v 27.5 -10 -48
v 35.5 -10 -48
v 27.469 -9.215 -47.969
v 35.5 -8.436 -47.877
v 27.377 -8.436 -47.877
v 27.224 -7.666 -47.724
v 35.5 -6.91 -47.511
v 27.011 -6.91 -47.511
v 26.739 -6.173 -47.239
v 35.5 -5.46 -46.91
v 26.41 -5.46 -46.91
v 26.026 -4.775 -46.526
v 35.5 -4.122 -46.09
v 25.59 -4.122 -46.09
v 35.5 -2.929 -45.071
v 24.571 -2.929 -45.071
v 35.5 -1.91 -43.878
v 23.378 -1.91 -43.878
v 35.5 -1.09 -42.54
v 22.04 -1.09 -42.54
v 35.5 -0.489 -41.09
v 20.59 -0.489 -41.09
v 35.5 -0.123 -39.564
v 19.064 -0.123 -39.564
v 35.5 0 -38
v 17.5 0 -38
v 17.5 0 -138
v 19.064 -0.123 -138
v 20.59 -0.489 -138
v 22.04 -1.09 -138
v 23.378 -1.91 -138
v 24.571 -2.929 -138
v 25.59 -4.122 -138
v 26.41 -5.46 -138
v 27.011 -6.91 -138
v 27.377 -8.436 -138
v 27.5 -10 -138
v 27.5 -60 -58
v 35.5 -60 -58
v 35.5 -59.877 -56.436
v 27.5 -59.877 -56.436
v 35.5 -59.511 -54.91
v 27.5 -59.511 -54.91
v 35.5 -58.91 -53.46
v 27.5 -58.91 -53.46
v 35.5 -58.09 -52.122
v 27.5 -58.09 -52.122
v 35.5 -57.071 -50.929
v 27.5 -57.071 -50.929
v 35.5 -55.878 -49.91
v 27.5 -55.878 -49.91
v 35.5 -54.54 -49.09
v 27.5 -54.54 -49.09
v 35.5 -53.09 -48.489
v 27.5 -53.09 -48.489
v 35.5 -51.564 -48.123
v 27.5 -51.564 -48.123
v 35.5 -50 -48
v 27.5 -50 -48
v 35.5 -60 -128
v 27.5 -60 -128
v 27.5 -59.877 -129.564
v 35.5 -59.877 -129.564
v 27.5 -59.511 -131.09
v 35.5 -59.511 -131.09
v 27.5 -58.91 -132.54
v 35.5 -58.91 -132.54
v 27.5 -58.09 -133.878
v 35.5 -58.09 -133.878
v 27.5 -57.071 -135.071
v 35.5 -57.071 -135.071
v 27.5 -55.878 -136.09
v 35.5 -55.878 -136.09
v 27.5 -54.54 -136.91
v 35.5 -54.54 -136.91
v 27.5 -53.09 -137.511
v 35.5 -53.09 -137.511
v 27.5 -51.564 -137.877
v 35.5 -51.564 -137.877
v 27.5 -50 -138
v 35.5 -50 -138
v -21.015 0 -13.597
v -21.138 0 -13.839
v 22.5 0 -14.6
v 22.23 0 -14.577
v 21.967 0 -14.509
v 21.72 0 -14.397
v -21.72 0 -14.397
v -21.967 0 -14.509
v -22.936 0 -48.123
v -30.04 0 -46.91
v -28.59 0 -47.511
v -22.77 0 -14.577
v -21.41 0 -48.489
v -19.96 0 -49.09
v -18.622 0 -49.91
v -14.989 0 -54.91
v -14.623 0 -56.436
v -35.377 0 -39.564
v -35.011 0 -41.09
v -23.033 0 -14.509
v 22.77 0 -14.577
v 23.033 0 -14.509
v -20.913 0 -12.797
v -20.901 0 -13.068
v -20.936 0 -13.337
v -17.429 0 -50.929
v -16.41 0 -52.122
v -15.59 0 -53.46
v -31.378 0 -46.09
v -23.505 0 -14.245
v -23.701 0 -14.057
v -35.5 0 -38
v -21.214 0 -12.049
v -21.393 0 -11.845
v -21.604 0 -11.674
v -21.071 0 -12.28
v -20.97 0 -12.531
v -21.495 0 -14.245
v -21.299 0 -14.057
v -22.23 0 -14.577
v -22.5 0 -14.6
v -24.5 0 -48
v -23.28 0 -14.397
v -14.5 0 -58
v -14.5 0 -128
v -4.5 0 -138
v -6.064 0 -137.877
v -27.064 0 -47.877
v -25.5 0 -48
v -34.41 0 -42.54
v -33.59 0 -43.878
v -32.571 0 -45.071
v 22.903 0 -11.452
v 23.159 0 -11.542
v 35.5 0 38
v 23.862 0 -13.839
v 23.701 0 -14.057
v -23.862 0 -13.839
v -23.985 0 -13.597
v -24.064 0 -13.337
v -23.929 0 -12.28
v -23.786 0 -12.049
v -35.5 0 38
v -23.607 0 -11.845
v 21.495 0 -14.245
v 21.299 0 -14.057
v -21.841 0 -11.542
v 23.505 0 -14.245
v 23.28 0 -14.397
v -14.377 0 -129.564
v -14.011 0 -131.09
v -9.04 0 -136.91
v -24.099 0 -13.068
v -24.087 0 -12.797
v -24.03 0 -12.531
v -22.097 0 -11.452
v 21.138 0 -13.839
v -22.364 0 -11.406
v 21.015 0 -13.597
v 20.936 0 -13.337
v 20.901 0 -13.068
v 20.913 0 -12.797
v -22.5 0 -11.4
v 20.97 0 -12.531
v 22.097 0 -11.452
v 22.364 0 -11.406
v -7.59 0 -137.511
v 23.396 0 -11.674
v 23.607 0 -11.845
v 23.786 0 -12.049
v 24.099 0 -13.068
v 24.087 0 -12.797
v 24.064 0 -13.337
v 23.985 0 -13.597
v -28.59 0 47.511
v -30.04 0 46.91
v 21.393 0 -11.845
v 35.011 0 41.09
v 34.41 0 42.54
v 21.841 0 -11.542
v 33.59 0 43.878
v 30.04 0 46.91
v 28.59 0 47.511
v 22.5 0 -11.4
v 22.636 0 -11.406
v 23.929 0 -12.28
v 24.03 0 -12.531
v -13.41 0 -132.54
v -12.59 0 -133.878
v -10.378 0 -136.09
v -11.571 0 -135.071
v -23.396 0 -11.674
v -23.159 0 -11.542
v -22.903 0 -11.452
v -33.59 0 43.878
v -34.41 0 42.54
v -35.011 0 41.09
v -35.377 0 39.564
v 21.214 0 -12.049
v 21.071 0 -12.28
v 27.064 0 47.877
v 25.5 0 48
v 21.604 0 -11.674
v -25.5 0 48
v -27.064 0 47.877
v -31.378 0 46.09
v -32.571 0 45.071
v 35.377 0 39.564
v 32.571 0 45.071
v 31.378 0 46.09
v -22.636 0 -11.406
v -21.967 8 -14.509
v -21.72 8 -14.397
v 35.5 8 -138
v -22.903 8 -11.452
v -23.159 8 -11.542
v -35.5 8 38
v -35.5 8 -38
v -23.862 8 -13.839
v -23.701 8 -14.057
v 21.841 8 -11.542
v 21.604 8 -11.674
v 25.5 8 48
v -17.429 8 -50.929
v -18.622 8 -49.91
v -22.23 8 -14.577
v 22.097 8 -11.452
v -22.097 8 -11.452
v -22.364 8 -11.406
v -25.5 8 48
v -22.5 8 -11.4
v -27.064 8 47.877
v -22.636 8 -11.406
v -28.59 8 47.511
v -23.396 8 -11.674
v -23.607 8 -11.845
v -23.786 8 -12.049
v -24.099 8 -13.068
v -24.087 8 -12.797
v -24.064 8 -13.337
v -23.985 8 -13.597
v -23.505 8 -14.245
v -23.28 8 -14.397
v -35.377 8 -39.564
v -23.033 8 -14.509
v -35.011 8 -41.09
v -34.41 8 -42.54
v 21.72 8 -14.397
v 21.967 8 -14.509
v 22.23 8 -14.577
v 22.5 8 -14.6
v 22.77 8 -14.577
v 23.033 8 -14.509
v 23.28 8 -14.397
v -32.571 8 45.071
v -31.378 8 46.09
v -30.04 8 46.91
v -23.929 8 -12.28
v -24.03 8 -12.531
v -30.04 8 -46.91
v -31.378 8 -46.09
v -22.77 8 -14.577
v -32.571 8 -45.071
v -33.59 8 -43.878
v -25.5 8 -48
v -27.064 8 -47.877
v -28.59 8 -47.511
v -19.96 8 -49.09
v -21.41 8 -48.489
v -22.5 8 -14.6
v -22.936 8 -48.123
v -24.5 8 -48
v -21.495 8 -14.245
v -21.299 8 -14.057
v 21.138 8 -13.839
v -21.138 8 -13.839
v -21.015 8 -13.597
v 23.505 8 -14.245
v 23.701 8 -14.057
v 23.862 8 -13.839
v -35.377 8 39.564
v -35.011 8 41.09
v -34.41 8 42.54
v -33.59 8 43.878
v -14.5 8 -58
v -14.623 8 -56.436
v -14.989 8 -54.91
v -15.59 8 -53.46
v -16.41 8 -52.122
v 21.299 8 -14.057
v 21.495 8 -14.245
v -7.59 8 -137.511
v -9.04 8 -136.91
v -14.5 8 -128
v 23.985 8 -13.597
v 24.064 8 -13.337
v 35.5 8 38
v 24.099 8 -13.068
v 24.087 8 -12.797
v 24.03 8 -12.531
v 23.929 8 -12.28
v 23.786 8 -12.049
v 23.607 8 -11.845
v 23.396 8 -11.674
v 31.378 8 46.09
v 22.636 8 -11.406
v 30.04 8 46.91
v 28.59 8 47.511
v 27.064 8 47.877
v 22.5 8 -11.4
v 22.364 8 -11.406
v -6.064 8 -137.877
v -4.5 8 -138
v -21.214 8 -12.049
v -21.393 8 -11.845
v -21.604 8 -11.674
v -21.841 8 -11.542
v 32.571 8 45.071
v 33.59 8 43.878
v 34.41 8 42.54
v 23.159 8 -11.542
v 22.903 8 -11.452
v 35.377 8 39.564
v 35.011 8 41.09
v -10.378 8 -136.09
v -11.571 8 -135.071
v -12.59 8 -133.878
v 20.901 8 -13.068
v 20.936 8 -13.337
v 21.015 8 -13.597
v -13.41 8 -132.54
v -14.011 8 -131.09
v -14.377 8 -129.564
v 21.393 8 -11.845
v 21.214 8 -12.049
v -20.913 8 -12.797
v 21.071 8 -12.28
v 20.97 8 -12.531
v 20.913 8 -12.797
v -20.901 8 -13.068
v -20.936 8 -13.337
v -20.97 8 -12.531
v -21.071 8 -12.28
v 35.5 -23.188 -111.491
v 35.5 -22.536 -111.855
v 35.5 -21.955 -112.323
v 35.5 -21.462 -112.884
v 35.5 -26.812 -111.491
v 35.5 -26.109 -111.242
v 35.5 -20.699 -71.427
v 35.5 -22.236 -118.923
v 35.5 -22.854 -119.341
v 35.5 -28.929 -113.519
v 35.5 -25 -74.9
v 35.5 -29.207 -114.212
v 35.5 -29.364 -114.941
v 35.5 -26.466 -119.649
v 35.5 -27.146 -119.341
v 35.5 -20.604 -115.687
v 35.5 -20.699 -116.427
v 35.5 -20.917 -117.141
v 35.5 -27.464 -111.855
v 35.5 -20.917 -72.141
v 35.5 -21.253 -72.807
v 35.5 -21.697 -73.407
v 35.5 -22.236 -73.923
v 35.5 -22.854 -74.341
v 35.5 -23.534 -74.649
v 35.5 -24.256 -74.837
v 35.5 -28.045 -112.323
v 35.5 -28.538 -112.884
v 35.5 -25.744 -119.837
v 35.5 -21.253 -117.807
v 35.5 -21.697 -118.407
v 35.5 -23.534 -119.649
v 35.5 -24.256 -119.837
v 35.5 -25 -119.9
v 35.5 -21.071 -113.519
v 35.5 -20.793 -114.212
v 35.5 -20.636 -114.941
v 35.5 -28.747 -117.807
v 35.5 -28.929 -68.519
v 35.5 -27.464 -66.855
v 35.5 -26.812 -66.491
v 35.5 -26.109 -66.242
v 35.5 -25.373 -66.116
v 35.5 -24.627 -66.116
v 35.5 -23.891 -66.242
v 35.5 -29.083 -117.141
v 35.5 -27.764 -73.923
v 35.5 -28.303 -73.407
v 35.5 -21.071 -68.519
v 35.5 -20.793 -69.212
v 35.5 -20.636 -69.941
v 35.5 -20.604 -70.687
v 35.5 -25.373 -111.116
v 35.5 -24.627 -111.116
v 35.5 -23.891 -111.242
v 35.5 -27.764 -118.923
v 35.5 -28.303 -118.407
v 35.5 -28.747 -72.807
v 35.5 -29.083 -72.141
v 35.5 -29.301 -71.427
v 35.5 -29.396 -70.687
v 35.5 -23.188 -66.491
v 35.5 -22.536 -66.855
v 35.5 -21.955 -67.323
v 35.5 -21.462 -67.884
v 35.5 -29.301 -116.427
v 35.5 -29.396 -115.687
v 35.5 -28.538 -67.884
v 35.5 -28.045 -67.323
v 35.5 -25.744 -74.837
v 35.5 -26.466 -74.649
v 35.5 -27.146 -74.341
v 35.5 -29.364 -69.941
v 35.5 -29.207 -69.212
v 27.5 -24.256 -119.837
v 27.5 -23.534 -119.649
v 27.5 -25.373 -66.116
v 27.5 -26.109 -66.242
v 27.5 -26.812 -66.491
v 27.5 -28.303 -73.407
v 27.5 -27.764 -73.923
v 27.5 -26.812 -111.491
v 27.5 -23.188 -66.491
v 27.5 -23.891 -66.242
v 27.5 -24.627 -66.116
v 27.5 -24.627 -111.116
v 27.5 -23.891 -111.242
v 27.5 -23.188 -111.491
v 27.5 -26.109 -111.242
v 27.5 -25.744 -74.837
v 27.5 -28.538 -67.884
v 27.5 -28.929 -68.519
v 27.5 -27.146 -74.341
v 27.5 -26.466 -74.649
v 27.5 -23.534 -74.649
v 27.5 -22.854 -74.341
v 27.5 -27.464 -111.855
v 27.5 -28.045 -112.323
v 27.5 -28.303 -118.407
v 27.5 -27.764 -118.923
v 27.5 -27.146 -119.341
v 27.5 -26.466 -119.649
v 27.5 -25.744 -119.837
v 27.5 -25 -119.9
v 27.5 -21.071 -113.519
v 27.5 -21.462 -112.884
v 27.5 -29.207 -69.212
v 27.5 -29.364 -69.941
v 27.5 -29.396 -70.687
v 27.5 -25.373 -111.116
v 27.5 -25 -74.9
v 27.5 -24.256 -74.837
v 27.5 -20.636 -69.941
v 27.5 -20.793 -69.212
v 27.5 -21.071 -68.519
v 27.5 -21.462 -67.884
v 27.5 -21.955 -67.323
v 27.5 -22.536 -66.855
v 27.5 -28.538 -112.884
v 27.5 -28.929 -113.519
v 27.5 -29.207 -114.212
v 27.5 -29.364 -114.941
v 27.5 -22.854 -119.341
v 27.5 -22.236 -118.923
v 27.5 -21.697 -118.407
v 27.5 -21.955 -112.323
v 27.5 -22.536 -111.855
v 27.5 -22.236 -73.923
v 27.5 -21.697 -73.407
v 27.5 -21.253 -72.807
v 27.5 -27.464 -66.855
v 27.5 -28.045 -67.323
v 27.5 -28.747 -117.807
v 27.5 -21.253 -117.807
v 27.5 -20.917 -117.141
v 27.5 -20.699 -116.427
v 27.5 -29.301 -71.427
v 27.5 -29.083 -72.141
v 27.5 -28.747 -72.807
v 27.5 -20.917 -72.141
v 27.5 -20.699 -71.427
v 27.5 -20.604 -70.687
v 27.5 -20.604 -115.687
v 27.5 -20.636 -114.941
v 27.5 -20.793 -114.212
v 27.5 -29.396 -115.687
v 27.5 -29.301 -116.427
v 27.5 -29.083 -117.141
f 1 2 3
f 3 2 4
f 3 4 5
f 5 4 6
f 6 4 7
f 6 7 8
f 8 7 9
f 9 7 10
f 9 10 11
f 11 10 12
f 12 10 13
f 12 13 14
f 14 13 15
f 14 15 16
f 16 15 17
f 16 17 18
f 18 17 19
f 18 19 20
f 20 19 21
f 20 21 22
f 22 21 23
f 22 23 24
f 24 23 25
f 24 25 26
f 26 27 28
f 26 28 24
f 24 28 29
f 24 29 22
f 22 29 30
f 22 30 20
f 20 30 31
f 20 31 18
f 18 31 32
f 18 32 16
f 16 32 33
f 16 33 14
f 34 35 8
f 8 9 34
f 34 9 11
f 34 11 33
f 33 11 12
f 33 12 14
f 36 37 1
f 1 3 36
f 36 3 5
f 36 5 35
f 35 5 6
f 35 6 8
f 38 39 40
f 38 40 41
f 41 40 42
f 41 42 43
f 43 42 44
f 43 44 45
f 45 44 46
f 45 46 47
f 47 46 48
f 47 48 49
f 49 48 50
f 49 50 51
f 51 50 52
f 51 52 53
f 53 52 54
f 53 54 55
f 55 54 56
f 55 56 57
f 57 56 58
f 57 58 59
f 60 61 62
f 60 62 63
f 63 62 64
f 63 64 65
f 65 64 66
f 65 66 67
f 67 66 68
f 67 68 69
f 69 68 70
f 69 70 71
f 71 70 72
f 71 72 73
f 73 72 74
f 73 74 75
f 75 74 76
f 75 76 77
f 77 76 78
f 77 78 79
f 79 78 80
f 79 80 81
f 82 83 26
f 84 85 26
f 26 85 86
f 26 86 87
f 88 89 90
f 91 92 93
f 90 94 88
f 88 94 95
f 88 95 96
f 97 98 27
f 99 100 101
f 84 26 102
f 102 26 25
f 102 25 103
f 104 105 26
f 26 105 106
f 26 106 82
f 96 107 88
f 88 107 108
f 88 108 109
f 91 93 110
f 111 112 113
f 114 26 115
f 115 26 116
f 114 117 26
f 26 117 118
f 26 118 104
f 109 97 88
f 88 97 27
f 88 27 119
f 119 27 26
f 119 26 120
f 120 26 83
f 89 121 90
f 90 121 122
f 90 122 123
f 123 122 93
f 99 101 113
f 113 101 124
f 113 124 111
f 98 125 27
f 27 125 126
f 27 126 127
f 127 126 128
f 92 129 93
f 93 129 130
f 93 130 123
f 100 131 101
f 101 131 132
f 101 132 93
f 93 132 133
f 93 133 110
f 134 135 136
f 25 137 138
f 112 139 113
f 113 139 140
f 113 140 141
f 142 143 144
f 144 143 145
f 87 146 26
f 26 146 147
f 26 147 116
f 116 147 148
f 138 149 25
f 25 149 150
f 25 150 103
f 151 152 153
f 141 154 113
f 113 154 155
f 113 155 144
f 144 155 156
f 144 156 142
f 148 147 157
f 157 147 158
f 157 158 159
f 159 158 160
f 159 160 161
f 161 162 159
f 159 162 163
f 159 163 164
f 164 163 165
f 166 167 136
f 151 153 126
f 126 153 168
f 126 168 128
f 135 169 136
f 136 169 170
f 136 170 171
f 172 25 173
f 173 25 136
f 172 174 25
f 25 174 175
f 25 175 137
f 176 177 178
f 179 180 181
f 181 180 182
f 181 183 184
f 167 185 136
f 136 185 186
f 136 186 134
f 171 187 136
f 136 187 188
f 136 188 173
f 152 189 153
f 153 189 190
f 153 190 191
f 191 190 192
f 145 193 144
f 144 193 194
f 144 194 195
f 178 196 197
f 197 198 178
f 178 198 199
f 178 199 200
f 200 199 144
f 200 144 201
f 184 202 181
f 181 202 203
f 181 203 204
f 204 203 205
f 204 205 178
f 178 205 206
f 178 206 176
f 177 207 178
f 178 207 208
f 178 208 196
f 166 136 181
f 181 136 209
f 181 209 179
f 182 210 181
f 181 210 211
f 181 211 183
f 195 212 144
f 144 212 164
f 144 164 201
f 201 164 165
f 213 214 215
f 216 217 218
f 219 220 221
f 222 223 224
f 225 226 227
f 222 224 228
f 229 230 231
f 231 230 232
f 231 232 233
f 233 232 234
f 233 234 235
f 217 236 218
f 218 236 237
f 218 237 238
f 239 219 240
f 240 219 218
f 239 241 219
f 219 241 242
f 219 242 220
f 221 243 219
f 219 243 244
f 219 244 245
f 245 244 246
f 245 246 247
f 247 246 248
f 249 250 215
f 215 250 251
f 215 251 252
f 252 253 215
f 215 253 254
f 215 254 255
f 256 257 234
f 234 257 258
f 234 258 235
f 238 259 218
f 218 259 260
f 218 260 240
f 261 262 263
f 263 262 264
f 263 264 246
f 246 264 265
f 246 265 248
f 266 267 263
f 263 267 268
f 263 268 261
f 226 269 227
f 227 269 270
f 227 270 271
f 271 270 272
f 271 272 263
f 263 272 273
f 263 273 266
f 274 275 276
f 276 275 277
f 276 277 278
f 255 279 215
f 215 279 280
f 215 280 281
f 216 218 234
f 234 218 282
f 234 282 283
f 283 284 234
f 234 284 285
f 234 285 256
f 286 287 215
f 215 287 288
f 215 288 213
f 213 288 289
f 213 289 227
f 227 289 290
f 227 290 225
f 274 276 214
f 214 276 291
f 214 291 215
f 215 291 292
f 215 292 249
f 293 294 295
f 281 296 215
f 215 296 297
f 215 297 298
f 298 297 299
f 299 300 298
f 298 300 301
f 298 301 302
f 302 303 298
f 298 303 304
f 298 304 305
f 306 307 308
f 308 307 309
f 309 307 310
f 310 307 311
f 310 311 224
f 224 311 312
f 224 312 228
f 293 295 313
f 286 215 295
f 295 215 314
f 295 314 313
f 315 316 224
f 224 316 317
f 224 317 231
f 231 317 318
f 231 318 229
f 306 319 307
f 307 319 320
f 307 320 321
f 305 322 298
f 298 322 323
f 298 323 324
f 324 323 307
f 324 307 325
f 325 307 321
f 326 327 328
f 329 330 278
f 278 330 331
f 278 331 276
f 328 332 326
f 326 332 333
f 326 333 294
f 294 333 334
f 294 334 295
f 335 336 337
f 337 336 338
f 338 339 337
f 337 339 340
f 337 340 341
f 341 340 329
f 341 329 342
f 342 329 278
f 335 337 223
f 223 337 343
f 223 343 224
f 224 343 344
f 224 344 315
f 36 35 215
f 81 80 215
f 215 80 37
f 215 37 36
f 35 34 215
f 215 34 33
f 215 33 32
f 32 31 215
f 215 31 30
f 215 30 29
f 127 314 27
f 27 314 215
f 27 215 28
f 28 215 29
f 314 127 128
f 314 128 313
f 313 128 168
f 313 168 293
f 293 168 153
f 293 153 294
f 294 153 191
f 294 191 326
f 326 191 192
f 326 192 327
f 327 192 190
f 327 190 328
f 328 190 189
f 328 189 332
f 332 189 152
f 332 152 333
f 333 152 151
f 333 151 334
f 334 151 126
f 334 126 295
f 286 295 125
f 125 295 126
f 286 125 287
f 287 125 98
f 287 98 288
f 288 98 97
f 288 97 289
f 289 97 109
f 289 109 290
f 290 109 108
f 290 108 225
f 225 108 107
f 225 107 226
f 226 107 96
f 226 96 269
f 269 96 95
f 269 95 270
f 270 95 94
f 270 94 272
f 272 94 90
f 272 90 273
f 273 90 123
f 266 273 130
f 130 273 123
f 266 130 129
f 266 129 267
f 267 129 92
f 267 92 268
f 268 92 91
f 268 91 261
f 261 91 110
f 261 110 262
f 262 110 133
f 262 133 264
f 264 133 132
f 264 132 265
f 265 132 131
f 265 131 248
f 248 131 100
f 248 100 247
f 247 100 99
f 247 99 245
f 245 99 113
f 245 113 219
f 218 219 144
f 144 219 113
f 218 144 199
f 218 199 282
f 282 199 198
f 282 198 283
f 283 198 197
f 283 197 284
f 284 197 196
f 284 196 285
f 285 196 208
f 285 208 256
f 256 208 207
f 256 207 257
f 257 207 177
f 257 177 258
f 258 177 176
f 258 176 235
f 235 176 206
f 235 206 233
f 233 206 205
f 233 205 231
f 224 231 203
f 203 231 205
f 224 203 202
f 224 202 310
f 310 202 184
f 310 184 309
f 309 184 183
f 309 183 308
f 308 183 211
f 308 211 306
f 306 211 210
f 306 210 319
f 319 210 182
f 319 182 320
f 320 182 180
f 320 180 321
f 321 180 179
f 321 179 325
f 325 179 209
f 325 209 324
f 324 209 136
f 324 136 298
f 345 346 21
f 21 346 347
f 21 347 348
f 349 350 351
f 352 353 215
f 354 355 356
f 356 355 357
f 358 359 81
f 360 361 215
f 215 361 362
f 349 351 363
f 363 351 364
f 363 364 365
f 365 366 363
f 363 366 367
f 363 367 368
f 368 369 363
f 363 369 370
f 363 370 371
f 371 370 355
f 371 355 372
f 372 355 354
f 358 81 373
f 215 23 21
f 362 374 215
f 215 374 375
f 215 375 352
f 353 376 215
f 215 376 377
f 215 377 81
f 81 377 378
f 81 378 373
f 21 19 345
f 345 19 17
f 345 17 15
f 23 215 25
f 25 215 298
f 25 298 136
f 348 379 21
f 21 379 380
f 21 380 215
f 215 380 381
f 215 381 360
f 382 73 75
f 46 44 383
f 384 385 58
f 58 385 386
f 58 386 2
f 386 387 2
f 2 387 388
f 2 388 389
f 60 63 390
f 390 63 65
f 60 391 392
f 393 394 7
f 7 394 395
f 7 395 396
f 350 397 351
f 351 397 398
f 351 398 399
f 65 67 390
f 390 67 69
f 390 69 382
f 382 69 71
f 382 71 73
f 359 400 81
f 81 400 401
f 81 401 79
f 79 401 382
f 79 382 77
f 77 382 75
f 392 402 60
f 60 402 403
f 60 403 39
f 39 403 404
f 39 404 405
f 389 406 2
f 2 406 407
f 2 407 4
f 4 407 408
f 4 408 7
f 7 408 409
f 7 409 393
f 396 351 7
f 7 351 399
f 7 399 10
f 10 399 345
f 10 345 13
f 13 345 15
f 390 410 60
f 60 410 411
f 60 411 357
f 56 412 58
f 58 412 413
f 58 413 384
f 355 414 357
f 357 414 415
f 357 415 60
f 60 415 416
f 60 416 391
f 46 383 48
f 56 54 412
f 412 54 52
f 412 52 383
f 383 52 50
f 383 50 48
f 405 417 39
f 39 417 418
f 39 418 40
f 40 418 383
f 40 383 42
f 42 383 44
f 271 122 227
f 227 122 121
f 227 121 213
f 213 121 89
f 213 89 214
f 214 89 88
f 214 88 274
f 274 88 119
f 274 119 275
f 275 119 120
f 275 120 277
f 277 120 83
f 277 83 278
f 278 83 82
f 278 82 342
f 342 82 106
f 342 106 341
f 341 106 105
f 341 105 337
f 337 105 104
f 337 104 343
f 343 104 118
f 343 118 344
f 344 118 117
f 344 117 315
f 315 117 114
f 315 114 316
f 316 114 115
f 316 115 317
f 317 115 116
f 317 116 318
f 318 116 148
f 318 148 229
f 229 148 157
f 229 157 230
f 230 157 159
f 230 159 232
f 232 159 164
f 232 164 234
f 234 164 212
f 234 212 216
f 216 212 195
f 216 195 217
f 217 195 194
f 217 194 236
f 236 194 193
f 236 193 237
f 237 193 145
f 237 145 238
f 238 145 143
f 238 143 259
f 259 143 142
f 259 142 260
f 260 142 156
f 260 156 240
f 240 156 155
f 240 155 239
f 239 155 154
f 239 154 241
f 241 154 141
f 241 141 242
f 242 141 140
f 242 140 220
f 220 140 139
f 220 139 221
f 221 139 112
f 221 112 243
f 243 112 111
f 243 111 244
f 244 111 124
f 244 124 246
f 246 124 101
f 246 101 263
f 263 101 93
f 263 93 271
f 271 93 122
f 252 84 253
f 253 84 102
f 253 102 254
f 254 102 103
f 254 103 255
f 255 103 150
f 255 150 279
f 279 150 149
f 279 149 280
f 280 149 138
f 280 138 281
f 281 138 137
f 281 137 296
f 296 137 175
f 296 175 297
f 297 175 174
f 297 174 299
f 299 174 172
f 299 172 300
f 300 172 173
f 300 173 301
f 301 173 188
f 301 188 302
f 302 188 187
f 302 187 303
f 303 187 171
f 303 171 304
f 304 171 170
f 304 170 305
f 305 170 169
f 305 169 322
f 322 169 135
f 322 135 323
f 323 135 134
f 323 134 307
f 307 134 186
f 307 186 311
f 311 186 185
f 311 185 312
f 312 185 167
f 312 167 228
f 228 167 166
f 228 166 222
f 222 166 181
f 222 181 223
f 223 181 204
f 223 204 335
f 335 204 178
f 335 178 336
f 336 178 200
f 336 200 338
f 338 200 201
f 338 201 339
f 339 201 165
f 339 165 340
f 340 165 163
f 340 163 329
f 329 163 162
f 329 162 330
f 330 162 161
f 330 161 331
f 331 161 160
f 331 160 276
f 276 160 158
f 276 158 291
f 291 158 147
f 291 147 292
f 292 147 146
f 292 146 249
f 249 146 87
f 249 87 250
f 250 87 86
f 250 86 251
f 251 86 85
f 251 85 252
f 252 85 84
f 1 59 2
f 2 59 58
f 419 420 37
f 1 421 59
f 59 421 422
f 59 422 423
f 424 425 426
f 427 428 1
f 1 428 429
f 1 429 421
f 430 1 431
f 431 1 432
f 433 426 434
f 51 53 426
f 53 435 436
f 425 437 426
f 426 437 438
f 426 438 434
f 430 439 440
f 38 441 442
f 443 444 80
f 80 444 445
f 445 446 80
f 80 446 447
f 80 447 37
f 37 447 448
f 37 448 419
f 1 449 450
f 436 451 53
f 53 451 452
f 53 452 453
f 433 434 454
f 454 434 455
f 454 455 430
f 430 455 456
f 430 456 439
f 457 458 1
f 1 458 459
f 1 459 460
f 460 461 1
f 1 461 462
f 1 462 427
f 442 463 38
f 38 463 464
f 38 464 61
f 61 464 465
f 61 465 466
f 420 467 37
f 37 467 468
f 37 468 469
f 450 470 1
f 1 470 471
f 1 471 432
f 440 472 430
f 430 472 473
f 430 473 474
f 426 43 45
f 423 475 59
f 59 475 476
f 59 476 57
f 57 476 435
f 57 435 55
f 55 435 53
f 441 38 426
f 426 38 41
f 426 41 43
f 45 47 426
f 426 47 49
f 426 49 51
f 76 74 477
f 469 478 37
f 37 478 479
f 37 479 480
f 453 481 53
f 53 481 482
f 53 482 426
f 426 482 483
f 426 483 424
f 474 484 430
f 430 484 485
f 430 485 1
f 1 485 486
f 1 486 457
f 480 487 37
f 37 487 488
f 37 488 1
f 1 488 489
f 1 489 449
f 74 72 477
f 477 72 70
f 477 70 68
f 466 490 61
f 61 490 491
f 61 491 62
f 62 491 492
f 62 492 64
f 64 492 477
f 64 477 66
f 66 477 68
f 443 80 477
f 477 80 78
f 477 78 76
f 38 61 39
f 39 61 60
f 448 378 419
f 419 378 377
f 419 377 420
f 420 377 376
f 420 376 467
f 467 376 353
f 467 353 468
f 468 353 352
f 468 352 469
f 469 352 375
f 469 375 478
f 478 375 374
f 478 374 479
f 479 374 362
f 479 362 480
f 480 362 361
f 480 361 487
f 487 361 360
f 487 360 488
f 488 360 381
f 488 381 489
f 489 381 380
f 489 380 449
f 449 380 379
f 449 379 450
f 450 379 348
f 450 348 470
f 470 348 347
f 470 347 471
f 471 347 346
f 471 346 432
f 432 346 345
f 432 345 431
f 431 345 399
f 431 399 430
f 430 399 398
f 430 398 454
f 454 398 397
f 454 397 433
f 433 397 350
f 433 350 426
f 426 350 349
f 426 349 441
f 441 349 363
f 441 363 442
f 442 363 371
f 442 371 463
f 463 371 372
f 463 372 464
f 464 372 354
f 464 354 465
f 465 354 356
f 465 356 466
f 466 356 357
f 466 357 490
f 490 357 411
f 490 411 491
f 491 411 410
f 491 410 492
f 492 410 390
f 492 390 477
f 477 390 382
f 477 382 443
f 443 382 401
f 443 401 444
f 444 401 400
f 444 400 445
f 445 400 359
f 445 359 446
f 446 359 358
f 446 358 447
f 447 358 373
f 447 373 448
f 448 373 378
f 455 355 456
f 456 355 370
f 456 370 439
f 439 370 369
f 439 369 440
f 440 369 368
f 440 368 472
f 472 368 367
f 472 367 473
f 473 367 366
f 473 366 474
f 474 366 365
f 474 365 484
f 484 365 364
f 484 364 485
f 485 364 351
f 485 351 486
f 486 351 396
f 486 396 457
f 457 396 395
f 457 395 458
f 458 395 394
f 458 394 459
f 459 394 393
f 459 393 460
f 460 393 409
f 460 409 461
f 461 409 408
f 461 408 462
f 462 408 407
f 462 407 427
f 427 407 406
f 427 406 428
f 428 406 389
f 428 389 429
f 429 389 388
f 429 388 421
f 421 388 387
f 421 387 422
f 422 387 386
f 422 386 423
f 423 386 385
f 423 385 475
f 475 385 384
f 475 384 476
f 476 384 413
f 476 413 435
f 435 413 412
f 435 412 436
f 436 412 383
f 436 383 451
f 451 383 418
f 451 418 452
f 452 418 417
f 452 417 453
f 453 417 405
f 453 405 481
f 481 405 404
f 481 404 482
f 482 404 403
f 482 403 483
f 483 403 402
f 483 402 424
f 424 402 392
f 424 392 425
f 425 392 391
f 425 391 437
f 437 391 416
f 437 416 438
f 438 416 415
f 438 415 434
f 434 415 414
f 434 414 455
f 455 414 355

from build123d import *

# Parameters (mm, degrees)
SKETCH1_R           = 1.6
BOSS_EXTRUDE1_DEPTH = 8
SKETCH2_W           = 8
SKETCH2_H           = 90
BOSS_EXTRUDE2_DEPTH = 60
FILLET1_R           = 10
FILLET2_R           = 10
SKETCH3_R           = 4.4
CUT_EXTRUDE1_DEPTH  = 8
FILLET3_R           = 10
FILLET4_R           = 10


with BuildPart() as part:
    # Sketch1 → Boss-Extrude1 (new body)
    with BuildSketch(Plane(origin=(0, 0, 0), x_dir=(1, 0, 0), z_dir=(0, 1, 0))):
        with BuildLine():
            Line((-25.5, 48), (-24.5, 48))
            ThreePointArc((-24.5, 48), (-17.428932188, 50.928932188), (-14.5, 58))
            Line((-14.5, 58), (-14.5, 128))
            ThreePointArc((-14.5, 128), (-11.571067812, 135.071067812), (-4.5, 138))
            Line((-4.5, 138), (35.5, 138))
            Line((35.5, 138), (35.5, 48))
            Line((35.5, 48), (35.5, -38))
            ThreePointArc((35.5, -38), (32.571067812, -45.071067812), (25.5, -48))
            Line((25.5, -48), (-25.5, -48))
            ThreePointArc((-25.5, -48), (-32.571067812, -45.071067812), (-35.5, -38))
            Line((-35.5, -38), (-35.5, 38))
            ThreePointArc((-35.5, 38), (-32.571067812, 45.071067812), (-25.5, 48))
        make_face()
        with Locations((-22.5, 13)):
            Circle(SKETCH1_R, mode=Mode.SUBTRACT)
        with Locations((22.5, 13)):
            Circle(SKETCH1_R, mode=Mode.SUBTRACT)
    extrude(amount=BOSS_EXTRUDE1_DEPTH)

    # Sketch2 → Boss-Extrude2 (add)
    with BuildSketch(Plane.XZ):
        with Locations((31.5, -93)):
            Rectangle(SKETCH2_W, SKETCH2_H)
    extrude(amount=BOSS_EXTRUDE2_DEPTH)

    # Fillet1
    fillet1_edges = [part.edges().sort_by_distance(p)[0] for p in [
        (31.5, -60, -138),
    ]]
    fillet(fillet1_edges, radius=FILLET1_R)

    # Fillet2
    fillet2_edges = [part.edges().sort_by_distance(p)[0] for p in [
        (31.5, -60, -48),
    ]]
    fillet(fillet2_edges, radius=FILLET2_R)

    # Sketch3 → Cut-Extrude1 (cut)
    with BuildSketch(Plane(origin=(35.5, 0, 0), x_dir=(0, 0, -1), z_dir=(1, 0, 0))):
        with Locations((70.5, -25)):
            Circle(SKETCH3_R)
        with Locations((115.5, -25)):
            Circle(SKETCH3_R)
    extrude(amount=-CUT_EXTRUDE1_DEPTH, mode=Mode.SUBTRACT)

    # Fillet3
    fillet3_edges = [part.edges().sort_by_distance(p)[0] for p in [
        (27.5, 0, -93),
    ]]
    fillet(fillet3_edges, radius=FILLET3_R)

    # Fillet4
    fillet4_edges = [part.edges().sort_by_distance(p)[0] for p in [
        (22.5, 0, -48),
    ]]
    fillet(fillet4_edges, radius=FILLET4_R)


solid = part.part
